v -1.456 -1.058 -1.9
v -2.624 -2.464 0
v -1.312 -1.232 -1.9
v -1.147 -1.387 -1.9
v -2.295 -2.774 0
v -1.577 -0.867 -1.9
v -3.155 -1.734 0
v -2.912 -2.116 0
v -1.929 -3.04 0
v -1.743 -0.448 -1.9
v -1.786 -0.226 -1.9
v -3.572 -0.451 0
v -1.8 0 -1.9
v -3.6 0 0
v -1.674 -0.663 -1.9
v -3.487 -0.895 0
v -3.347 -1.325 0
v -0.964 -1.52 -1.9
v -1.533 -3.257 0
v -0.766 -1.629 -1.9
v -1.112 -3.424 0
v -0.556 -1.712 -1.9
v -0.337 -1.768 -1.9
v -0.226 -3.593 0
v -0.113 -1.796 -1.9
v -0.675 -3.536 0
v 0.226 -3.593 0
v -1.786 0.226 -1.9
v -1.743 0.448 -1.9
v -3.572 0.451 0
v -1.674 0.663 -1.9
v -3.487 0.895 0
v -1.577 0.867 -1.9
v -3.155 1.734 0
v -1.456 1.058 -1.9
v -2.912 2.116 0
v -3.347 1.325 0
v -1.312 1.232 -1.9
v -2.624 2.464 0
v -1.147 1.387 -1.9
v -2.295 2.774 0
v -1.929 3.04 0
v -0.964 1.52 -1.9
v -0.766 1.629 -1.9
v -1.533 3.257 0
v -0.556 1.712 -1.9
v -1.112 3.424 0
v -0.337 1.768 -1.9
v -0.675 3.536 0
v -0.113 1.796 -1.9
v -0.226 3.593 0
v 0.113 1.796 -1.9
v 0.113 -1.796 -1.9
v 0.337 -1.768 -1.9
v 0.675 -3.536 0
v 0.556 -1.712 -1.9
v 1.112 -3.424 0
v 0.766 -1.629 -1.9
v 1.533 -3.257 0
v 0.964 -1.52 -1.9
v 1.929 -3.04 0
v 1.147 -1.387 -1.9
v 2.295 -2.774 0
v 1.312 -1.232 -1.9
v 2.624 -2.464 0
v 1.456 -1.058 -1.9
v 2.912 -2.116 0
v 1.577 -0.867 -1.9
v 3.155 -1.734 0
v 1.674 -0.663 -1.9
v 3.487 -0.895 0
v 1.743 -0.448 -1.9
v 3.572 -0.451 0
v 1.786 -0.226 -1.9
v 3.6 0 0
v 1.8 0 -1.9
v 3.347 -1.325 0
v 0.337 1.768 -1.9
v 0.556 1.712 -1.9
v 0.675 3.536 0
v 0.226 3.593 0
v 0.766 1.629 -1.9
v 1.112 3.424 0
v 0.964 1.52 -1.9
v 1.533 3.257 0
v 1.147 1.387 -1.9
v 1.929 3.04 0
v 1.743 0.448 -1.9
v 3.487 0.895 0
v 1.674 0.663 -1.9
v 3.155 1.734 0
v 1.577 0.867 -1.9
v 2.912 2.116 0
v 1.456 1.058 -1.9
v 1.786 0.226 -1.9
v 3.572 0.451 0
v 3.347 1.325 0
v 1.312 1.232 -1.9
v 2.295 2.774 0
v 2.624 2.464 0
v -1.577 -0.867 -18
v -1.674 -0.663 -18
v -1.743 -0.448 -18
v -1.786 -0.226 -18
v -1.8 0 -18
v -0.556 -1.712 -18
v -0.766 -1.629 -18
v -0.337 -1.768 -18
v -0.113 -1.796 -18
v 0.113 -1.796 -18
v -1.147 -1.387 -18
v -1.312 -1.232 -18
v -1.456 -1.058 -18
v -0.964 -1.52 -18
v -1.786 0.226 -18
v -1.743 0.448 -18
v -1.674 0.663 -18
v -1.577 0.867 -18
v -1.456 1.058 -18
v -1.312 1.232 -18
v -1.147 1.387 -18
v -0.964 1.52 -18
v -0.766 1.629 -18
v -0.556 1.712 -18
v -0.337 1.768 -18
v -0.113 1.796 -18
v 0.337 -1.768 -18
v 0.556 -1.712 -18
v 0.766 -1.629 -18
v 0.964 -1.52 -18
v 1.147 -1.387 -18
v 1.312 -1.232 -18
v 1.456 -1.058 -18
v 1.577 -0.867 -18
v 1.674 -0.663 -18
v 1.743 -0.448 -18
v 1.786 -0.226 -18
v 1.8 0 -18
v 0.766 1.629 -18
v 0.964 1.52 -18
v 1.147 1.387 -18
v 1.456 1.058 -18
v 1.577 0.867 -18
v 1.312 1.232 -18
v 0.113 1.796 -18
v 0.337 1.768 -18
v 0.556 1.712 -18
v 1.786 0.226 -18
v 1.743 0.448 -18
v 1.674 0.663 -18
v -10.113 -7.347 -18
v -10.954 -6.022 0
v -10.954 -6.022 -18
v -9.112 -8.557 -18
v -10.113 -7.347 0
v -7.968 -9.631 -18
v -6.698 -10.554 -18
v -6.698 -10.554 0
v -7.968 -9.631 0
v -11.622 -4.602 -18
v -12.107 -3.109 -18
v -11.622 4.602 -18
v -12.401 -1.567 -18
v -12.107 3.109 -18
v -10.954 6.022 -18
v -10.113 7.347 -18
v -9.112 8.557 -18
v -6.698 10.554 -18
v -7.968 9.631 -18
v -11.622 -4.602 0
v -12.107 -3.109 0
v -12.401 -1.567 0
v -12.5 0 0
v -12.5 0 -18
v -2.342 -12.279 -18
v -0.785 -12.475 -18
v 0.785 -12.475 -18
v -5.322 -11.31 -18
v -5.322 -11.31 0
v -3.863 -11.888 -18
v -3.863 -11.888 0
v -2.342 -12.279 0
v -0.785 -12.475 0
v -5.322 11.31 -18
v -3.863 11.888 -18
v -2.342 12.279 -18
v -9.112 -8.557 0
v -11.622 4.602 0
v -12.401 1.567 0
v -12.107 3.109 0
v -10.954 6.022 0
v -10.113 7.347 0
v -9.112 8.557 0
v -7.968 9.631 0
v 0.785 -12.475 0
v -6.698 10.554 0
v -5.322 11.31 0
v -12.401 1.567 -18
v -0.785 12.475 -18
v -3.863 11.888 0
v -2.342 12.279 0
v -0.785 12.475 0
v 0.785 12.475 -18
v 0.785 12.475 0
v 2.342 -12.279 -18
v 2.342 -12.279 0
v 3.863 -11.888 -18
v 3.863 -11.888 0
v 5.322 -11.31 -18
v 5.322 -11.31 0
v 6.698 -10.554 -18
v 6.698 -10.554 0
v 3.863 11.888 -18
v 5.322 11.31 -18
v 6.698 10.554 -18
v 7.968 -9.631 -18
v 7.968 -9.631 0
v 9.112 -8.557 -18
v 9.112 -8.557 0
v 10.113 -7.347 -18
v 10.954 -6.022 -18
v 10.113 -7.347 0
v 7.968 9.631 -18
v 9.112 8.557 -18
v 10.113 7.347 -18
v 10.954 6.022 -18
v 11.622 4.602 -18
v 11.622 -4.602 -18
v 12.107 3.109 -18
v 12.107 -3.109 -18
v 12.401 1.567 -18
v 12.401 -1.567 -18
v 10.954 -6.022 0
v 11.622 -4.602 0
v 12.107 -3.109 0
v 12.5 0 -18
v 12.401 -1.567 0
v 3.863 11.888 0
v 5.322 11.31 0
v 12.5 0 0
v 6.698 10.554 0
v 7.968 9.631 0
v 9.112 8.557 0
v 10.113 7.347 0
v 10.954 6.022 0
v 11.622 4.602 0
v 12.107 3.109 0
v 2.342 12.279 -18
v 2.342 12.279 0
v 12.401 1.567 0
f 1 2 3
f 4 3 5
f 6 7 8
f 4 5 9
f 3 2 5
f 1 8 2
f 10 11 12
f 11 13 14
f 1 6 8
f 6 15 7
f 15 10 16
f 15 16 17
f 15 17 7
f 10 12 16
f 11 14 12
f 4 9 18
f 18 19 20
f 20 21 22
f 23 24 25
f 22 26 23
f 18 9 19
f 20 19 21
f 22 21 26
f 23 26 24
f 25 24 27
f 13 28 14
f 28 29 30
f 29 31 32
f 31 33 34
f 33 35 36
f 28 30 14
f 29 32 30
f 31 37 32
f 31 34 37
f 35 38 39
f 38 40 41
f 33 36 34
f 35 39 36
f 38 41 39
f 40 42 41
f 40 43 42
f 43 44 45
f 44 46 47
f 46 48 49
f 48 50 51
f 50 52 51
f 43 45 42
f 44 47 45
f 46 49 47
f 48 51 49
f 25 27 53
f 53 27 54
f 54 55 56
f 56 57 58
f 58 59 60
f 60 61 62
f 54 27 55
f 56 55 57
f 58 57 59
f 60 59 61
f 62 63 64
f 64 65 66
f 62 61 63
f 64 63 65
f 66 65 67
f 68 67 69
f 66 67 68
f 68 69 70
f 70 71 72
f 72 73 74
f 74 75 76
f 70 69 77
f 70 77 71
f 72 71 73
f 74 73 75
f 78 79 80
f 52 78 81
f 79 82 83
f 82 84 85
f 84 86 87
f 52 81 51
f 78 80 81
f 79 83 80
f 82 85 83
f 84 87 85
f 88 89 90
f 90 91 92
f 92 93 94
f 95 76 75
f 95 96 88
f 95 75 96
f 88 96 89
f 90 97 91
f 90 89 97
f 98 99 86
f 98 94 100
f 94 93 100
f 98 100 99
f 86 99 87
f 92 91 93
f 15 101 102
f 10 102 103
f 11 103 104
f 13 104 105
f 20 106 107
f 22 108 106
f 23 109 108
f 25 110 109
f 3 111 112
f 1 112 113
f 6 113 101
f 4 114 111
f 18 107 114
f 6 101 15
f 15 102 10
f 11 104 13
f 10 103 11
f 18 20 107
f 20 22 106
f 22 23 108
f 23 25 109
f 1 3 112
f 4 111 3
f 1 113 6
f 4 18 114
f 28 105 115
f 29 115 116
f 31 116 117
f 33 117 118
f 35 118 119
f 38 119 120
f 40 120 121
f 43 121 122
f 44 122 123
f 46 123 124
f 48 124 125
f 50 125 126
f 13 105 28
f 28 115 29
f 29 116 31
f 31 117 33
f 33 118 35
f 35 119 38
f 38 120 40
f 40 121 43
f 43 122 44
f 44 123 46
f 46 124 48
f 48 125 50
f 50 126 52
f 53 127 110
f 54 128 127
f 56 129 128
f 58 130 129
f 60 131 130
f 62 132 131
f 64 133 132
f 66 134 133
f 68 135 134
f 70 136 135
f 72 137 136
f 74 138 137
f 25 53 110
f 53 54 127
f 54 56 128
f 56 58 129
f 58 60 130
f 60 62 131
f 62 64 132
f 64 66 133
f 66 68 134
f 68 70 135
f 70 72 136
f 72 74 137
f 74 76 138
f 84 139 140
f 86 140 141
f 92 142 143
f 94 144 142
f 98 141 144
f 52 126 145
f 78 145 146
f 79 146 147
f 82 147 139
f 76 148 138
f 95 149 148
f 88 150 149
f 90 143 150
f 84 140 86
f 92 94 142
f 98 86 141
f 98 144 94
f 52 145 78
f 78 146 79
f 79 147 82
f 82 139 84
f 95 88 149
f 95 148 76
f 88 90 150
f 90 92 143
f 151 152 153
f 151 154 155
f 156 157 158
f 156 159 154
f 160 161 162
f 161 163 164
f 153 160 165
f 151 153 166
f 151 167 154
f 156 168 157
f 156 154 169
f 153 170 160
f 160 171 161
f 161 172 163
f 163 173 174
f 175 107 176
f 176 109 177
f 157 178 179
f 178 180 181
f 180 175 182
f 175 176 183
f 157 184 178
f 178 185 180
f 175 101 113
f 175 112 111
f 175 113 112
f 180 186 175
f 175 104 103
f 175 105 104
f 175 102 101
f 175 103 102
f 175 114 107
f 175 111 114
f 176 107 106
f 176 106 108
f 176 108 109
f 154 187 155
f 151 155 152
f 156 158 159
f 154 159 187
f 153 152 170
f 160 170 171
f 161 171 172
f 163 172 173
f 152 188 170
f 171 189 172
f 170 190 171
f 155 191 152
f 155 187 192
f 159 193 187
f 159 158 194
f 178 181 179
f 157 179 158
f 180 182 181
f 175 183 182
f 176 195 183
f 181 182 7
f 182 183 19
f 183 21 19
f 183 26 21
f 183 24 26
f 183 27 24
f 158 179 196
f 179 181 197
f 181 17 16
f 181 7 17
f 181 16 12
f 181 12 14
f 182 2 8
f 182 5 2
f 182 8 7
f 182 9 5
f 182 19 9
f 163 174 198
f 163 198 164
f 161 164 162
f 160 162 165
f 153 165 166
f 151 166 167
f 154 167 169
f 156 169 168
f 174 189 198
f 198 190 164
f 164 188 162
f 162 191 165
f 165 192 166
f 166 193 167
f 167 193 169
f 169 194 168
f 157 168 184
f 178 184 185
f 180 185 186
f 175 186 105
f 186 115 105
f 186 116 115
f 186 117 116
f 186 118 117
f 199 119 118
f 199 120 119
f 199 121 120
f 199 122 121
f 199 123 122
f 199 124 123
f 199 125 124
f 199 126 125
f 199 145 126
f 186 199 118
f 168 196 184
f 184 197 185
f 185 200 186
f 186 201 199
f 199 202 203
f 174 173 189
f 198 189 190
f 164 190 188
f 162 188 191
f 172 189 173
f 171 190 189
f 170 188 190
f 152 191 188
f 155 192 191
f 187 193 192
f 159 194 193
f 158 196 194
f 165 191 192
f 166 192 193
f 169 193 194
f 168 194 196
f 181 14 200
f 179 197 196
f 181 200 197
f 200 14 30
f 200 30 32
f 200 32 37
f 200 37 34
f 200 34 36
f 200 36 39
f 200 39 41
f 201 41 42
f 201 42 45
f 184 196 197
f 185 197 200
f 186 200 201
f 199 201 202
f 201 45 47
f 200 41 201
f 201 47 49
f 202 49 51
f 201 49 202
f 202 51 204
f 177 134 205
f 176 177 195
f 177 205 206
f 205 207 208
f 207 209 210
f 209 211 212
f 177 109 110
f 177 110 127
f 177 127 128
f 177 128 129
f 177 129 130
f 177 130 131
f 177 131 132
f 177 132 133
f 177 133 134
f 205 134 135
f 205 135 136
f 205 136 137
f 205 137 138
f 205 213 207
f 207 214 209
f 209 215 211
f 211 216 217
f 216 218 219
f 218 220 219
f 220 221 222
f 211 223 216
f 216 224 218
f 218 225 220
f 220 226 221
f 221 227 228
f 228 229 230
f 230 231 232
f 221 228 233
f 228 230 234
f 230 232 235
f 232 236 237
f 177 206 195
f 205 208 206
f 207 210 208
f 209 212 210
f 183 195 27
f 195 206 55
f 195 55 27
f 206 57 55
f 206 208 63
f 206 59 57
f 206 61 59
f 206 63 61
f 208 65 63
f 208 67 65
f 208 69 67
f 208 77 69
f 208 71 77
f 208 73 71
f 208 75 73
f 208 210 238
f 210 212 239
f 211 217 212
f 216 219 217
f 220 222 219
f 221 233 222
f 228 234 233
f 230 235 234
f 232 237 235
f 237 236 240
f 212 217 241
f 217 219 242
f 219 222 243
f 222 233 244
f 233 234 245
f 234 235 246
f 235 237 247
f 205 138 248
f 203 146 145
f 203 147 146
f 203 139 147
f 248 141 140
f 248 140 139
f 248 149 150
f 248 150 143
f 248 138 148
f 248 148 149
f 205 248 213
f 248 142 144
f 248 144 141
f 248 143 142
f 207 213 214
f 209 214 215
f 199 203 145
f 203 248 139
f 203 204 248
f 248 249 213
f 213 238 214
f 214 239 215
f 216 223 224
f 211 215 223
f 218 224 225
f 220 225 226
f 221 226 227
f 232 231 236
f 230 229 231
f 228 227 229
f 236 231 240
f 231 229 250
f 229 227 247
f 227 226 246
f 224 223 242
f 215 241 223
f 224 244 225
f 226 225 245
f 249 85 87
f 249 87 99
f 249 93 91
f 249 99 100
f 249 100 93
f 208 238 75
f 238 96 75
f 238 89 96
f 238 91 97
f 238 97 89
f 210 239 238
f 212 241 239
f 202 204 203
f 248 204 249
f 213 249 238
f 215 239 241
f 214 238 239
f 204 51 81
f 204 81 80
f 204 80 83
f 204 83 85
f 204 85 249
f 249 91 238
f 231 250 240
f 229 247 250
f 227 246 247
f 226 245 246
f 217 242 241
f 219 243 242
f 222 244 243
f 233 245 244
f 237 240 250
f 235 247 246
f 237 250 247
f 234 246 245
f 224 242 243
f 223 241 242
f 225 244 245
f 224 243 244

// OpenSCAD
$fn = 50;


difference() {
	union() {
		translate(v = [0, 0, -18.0000000000]) {
			cylinder(h = 18, r = 12.5000000000);
		}
	}
	union() {
		translate(v = [0, 0, 0]) {
			rotate(a = [0, 0, 0]) {
				difference() {
					union() {
						translate(v = [0, 0, -21.0000000000]) {
							cylinder(h = 21, r = 1.5000000000);
						}
						translate(v = [0, 0, -1.9000000000]) {
							cylinder(h = 1.9000000000, r1 = 1.8000000000, r2 = 3.6000000000);
						}
						translate(v = [0, 0, -21.0000000000]) {
							cylinder(h = 21, r = 1.8000000000);
						}
						translate(v = [0, 0, -21.0000000000]) {
							cylinder(h = 21, r = 1.5000000000);
						}
					}
					union();
				}
			}
		}
	}
}
